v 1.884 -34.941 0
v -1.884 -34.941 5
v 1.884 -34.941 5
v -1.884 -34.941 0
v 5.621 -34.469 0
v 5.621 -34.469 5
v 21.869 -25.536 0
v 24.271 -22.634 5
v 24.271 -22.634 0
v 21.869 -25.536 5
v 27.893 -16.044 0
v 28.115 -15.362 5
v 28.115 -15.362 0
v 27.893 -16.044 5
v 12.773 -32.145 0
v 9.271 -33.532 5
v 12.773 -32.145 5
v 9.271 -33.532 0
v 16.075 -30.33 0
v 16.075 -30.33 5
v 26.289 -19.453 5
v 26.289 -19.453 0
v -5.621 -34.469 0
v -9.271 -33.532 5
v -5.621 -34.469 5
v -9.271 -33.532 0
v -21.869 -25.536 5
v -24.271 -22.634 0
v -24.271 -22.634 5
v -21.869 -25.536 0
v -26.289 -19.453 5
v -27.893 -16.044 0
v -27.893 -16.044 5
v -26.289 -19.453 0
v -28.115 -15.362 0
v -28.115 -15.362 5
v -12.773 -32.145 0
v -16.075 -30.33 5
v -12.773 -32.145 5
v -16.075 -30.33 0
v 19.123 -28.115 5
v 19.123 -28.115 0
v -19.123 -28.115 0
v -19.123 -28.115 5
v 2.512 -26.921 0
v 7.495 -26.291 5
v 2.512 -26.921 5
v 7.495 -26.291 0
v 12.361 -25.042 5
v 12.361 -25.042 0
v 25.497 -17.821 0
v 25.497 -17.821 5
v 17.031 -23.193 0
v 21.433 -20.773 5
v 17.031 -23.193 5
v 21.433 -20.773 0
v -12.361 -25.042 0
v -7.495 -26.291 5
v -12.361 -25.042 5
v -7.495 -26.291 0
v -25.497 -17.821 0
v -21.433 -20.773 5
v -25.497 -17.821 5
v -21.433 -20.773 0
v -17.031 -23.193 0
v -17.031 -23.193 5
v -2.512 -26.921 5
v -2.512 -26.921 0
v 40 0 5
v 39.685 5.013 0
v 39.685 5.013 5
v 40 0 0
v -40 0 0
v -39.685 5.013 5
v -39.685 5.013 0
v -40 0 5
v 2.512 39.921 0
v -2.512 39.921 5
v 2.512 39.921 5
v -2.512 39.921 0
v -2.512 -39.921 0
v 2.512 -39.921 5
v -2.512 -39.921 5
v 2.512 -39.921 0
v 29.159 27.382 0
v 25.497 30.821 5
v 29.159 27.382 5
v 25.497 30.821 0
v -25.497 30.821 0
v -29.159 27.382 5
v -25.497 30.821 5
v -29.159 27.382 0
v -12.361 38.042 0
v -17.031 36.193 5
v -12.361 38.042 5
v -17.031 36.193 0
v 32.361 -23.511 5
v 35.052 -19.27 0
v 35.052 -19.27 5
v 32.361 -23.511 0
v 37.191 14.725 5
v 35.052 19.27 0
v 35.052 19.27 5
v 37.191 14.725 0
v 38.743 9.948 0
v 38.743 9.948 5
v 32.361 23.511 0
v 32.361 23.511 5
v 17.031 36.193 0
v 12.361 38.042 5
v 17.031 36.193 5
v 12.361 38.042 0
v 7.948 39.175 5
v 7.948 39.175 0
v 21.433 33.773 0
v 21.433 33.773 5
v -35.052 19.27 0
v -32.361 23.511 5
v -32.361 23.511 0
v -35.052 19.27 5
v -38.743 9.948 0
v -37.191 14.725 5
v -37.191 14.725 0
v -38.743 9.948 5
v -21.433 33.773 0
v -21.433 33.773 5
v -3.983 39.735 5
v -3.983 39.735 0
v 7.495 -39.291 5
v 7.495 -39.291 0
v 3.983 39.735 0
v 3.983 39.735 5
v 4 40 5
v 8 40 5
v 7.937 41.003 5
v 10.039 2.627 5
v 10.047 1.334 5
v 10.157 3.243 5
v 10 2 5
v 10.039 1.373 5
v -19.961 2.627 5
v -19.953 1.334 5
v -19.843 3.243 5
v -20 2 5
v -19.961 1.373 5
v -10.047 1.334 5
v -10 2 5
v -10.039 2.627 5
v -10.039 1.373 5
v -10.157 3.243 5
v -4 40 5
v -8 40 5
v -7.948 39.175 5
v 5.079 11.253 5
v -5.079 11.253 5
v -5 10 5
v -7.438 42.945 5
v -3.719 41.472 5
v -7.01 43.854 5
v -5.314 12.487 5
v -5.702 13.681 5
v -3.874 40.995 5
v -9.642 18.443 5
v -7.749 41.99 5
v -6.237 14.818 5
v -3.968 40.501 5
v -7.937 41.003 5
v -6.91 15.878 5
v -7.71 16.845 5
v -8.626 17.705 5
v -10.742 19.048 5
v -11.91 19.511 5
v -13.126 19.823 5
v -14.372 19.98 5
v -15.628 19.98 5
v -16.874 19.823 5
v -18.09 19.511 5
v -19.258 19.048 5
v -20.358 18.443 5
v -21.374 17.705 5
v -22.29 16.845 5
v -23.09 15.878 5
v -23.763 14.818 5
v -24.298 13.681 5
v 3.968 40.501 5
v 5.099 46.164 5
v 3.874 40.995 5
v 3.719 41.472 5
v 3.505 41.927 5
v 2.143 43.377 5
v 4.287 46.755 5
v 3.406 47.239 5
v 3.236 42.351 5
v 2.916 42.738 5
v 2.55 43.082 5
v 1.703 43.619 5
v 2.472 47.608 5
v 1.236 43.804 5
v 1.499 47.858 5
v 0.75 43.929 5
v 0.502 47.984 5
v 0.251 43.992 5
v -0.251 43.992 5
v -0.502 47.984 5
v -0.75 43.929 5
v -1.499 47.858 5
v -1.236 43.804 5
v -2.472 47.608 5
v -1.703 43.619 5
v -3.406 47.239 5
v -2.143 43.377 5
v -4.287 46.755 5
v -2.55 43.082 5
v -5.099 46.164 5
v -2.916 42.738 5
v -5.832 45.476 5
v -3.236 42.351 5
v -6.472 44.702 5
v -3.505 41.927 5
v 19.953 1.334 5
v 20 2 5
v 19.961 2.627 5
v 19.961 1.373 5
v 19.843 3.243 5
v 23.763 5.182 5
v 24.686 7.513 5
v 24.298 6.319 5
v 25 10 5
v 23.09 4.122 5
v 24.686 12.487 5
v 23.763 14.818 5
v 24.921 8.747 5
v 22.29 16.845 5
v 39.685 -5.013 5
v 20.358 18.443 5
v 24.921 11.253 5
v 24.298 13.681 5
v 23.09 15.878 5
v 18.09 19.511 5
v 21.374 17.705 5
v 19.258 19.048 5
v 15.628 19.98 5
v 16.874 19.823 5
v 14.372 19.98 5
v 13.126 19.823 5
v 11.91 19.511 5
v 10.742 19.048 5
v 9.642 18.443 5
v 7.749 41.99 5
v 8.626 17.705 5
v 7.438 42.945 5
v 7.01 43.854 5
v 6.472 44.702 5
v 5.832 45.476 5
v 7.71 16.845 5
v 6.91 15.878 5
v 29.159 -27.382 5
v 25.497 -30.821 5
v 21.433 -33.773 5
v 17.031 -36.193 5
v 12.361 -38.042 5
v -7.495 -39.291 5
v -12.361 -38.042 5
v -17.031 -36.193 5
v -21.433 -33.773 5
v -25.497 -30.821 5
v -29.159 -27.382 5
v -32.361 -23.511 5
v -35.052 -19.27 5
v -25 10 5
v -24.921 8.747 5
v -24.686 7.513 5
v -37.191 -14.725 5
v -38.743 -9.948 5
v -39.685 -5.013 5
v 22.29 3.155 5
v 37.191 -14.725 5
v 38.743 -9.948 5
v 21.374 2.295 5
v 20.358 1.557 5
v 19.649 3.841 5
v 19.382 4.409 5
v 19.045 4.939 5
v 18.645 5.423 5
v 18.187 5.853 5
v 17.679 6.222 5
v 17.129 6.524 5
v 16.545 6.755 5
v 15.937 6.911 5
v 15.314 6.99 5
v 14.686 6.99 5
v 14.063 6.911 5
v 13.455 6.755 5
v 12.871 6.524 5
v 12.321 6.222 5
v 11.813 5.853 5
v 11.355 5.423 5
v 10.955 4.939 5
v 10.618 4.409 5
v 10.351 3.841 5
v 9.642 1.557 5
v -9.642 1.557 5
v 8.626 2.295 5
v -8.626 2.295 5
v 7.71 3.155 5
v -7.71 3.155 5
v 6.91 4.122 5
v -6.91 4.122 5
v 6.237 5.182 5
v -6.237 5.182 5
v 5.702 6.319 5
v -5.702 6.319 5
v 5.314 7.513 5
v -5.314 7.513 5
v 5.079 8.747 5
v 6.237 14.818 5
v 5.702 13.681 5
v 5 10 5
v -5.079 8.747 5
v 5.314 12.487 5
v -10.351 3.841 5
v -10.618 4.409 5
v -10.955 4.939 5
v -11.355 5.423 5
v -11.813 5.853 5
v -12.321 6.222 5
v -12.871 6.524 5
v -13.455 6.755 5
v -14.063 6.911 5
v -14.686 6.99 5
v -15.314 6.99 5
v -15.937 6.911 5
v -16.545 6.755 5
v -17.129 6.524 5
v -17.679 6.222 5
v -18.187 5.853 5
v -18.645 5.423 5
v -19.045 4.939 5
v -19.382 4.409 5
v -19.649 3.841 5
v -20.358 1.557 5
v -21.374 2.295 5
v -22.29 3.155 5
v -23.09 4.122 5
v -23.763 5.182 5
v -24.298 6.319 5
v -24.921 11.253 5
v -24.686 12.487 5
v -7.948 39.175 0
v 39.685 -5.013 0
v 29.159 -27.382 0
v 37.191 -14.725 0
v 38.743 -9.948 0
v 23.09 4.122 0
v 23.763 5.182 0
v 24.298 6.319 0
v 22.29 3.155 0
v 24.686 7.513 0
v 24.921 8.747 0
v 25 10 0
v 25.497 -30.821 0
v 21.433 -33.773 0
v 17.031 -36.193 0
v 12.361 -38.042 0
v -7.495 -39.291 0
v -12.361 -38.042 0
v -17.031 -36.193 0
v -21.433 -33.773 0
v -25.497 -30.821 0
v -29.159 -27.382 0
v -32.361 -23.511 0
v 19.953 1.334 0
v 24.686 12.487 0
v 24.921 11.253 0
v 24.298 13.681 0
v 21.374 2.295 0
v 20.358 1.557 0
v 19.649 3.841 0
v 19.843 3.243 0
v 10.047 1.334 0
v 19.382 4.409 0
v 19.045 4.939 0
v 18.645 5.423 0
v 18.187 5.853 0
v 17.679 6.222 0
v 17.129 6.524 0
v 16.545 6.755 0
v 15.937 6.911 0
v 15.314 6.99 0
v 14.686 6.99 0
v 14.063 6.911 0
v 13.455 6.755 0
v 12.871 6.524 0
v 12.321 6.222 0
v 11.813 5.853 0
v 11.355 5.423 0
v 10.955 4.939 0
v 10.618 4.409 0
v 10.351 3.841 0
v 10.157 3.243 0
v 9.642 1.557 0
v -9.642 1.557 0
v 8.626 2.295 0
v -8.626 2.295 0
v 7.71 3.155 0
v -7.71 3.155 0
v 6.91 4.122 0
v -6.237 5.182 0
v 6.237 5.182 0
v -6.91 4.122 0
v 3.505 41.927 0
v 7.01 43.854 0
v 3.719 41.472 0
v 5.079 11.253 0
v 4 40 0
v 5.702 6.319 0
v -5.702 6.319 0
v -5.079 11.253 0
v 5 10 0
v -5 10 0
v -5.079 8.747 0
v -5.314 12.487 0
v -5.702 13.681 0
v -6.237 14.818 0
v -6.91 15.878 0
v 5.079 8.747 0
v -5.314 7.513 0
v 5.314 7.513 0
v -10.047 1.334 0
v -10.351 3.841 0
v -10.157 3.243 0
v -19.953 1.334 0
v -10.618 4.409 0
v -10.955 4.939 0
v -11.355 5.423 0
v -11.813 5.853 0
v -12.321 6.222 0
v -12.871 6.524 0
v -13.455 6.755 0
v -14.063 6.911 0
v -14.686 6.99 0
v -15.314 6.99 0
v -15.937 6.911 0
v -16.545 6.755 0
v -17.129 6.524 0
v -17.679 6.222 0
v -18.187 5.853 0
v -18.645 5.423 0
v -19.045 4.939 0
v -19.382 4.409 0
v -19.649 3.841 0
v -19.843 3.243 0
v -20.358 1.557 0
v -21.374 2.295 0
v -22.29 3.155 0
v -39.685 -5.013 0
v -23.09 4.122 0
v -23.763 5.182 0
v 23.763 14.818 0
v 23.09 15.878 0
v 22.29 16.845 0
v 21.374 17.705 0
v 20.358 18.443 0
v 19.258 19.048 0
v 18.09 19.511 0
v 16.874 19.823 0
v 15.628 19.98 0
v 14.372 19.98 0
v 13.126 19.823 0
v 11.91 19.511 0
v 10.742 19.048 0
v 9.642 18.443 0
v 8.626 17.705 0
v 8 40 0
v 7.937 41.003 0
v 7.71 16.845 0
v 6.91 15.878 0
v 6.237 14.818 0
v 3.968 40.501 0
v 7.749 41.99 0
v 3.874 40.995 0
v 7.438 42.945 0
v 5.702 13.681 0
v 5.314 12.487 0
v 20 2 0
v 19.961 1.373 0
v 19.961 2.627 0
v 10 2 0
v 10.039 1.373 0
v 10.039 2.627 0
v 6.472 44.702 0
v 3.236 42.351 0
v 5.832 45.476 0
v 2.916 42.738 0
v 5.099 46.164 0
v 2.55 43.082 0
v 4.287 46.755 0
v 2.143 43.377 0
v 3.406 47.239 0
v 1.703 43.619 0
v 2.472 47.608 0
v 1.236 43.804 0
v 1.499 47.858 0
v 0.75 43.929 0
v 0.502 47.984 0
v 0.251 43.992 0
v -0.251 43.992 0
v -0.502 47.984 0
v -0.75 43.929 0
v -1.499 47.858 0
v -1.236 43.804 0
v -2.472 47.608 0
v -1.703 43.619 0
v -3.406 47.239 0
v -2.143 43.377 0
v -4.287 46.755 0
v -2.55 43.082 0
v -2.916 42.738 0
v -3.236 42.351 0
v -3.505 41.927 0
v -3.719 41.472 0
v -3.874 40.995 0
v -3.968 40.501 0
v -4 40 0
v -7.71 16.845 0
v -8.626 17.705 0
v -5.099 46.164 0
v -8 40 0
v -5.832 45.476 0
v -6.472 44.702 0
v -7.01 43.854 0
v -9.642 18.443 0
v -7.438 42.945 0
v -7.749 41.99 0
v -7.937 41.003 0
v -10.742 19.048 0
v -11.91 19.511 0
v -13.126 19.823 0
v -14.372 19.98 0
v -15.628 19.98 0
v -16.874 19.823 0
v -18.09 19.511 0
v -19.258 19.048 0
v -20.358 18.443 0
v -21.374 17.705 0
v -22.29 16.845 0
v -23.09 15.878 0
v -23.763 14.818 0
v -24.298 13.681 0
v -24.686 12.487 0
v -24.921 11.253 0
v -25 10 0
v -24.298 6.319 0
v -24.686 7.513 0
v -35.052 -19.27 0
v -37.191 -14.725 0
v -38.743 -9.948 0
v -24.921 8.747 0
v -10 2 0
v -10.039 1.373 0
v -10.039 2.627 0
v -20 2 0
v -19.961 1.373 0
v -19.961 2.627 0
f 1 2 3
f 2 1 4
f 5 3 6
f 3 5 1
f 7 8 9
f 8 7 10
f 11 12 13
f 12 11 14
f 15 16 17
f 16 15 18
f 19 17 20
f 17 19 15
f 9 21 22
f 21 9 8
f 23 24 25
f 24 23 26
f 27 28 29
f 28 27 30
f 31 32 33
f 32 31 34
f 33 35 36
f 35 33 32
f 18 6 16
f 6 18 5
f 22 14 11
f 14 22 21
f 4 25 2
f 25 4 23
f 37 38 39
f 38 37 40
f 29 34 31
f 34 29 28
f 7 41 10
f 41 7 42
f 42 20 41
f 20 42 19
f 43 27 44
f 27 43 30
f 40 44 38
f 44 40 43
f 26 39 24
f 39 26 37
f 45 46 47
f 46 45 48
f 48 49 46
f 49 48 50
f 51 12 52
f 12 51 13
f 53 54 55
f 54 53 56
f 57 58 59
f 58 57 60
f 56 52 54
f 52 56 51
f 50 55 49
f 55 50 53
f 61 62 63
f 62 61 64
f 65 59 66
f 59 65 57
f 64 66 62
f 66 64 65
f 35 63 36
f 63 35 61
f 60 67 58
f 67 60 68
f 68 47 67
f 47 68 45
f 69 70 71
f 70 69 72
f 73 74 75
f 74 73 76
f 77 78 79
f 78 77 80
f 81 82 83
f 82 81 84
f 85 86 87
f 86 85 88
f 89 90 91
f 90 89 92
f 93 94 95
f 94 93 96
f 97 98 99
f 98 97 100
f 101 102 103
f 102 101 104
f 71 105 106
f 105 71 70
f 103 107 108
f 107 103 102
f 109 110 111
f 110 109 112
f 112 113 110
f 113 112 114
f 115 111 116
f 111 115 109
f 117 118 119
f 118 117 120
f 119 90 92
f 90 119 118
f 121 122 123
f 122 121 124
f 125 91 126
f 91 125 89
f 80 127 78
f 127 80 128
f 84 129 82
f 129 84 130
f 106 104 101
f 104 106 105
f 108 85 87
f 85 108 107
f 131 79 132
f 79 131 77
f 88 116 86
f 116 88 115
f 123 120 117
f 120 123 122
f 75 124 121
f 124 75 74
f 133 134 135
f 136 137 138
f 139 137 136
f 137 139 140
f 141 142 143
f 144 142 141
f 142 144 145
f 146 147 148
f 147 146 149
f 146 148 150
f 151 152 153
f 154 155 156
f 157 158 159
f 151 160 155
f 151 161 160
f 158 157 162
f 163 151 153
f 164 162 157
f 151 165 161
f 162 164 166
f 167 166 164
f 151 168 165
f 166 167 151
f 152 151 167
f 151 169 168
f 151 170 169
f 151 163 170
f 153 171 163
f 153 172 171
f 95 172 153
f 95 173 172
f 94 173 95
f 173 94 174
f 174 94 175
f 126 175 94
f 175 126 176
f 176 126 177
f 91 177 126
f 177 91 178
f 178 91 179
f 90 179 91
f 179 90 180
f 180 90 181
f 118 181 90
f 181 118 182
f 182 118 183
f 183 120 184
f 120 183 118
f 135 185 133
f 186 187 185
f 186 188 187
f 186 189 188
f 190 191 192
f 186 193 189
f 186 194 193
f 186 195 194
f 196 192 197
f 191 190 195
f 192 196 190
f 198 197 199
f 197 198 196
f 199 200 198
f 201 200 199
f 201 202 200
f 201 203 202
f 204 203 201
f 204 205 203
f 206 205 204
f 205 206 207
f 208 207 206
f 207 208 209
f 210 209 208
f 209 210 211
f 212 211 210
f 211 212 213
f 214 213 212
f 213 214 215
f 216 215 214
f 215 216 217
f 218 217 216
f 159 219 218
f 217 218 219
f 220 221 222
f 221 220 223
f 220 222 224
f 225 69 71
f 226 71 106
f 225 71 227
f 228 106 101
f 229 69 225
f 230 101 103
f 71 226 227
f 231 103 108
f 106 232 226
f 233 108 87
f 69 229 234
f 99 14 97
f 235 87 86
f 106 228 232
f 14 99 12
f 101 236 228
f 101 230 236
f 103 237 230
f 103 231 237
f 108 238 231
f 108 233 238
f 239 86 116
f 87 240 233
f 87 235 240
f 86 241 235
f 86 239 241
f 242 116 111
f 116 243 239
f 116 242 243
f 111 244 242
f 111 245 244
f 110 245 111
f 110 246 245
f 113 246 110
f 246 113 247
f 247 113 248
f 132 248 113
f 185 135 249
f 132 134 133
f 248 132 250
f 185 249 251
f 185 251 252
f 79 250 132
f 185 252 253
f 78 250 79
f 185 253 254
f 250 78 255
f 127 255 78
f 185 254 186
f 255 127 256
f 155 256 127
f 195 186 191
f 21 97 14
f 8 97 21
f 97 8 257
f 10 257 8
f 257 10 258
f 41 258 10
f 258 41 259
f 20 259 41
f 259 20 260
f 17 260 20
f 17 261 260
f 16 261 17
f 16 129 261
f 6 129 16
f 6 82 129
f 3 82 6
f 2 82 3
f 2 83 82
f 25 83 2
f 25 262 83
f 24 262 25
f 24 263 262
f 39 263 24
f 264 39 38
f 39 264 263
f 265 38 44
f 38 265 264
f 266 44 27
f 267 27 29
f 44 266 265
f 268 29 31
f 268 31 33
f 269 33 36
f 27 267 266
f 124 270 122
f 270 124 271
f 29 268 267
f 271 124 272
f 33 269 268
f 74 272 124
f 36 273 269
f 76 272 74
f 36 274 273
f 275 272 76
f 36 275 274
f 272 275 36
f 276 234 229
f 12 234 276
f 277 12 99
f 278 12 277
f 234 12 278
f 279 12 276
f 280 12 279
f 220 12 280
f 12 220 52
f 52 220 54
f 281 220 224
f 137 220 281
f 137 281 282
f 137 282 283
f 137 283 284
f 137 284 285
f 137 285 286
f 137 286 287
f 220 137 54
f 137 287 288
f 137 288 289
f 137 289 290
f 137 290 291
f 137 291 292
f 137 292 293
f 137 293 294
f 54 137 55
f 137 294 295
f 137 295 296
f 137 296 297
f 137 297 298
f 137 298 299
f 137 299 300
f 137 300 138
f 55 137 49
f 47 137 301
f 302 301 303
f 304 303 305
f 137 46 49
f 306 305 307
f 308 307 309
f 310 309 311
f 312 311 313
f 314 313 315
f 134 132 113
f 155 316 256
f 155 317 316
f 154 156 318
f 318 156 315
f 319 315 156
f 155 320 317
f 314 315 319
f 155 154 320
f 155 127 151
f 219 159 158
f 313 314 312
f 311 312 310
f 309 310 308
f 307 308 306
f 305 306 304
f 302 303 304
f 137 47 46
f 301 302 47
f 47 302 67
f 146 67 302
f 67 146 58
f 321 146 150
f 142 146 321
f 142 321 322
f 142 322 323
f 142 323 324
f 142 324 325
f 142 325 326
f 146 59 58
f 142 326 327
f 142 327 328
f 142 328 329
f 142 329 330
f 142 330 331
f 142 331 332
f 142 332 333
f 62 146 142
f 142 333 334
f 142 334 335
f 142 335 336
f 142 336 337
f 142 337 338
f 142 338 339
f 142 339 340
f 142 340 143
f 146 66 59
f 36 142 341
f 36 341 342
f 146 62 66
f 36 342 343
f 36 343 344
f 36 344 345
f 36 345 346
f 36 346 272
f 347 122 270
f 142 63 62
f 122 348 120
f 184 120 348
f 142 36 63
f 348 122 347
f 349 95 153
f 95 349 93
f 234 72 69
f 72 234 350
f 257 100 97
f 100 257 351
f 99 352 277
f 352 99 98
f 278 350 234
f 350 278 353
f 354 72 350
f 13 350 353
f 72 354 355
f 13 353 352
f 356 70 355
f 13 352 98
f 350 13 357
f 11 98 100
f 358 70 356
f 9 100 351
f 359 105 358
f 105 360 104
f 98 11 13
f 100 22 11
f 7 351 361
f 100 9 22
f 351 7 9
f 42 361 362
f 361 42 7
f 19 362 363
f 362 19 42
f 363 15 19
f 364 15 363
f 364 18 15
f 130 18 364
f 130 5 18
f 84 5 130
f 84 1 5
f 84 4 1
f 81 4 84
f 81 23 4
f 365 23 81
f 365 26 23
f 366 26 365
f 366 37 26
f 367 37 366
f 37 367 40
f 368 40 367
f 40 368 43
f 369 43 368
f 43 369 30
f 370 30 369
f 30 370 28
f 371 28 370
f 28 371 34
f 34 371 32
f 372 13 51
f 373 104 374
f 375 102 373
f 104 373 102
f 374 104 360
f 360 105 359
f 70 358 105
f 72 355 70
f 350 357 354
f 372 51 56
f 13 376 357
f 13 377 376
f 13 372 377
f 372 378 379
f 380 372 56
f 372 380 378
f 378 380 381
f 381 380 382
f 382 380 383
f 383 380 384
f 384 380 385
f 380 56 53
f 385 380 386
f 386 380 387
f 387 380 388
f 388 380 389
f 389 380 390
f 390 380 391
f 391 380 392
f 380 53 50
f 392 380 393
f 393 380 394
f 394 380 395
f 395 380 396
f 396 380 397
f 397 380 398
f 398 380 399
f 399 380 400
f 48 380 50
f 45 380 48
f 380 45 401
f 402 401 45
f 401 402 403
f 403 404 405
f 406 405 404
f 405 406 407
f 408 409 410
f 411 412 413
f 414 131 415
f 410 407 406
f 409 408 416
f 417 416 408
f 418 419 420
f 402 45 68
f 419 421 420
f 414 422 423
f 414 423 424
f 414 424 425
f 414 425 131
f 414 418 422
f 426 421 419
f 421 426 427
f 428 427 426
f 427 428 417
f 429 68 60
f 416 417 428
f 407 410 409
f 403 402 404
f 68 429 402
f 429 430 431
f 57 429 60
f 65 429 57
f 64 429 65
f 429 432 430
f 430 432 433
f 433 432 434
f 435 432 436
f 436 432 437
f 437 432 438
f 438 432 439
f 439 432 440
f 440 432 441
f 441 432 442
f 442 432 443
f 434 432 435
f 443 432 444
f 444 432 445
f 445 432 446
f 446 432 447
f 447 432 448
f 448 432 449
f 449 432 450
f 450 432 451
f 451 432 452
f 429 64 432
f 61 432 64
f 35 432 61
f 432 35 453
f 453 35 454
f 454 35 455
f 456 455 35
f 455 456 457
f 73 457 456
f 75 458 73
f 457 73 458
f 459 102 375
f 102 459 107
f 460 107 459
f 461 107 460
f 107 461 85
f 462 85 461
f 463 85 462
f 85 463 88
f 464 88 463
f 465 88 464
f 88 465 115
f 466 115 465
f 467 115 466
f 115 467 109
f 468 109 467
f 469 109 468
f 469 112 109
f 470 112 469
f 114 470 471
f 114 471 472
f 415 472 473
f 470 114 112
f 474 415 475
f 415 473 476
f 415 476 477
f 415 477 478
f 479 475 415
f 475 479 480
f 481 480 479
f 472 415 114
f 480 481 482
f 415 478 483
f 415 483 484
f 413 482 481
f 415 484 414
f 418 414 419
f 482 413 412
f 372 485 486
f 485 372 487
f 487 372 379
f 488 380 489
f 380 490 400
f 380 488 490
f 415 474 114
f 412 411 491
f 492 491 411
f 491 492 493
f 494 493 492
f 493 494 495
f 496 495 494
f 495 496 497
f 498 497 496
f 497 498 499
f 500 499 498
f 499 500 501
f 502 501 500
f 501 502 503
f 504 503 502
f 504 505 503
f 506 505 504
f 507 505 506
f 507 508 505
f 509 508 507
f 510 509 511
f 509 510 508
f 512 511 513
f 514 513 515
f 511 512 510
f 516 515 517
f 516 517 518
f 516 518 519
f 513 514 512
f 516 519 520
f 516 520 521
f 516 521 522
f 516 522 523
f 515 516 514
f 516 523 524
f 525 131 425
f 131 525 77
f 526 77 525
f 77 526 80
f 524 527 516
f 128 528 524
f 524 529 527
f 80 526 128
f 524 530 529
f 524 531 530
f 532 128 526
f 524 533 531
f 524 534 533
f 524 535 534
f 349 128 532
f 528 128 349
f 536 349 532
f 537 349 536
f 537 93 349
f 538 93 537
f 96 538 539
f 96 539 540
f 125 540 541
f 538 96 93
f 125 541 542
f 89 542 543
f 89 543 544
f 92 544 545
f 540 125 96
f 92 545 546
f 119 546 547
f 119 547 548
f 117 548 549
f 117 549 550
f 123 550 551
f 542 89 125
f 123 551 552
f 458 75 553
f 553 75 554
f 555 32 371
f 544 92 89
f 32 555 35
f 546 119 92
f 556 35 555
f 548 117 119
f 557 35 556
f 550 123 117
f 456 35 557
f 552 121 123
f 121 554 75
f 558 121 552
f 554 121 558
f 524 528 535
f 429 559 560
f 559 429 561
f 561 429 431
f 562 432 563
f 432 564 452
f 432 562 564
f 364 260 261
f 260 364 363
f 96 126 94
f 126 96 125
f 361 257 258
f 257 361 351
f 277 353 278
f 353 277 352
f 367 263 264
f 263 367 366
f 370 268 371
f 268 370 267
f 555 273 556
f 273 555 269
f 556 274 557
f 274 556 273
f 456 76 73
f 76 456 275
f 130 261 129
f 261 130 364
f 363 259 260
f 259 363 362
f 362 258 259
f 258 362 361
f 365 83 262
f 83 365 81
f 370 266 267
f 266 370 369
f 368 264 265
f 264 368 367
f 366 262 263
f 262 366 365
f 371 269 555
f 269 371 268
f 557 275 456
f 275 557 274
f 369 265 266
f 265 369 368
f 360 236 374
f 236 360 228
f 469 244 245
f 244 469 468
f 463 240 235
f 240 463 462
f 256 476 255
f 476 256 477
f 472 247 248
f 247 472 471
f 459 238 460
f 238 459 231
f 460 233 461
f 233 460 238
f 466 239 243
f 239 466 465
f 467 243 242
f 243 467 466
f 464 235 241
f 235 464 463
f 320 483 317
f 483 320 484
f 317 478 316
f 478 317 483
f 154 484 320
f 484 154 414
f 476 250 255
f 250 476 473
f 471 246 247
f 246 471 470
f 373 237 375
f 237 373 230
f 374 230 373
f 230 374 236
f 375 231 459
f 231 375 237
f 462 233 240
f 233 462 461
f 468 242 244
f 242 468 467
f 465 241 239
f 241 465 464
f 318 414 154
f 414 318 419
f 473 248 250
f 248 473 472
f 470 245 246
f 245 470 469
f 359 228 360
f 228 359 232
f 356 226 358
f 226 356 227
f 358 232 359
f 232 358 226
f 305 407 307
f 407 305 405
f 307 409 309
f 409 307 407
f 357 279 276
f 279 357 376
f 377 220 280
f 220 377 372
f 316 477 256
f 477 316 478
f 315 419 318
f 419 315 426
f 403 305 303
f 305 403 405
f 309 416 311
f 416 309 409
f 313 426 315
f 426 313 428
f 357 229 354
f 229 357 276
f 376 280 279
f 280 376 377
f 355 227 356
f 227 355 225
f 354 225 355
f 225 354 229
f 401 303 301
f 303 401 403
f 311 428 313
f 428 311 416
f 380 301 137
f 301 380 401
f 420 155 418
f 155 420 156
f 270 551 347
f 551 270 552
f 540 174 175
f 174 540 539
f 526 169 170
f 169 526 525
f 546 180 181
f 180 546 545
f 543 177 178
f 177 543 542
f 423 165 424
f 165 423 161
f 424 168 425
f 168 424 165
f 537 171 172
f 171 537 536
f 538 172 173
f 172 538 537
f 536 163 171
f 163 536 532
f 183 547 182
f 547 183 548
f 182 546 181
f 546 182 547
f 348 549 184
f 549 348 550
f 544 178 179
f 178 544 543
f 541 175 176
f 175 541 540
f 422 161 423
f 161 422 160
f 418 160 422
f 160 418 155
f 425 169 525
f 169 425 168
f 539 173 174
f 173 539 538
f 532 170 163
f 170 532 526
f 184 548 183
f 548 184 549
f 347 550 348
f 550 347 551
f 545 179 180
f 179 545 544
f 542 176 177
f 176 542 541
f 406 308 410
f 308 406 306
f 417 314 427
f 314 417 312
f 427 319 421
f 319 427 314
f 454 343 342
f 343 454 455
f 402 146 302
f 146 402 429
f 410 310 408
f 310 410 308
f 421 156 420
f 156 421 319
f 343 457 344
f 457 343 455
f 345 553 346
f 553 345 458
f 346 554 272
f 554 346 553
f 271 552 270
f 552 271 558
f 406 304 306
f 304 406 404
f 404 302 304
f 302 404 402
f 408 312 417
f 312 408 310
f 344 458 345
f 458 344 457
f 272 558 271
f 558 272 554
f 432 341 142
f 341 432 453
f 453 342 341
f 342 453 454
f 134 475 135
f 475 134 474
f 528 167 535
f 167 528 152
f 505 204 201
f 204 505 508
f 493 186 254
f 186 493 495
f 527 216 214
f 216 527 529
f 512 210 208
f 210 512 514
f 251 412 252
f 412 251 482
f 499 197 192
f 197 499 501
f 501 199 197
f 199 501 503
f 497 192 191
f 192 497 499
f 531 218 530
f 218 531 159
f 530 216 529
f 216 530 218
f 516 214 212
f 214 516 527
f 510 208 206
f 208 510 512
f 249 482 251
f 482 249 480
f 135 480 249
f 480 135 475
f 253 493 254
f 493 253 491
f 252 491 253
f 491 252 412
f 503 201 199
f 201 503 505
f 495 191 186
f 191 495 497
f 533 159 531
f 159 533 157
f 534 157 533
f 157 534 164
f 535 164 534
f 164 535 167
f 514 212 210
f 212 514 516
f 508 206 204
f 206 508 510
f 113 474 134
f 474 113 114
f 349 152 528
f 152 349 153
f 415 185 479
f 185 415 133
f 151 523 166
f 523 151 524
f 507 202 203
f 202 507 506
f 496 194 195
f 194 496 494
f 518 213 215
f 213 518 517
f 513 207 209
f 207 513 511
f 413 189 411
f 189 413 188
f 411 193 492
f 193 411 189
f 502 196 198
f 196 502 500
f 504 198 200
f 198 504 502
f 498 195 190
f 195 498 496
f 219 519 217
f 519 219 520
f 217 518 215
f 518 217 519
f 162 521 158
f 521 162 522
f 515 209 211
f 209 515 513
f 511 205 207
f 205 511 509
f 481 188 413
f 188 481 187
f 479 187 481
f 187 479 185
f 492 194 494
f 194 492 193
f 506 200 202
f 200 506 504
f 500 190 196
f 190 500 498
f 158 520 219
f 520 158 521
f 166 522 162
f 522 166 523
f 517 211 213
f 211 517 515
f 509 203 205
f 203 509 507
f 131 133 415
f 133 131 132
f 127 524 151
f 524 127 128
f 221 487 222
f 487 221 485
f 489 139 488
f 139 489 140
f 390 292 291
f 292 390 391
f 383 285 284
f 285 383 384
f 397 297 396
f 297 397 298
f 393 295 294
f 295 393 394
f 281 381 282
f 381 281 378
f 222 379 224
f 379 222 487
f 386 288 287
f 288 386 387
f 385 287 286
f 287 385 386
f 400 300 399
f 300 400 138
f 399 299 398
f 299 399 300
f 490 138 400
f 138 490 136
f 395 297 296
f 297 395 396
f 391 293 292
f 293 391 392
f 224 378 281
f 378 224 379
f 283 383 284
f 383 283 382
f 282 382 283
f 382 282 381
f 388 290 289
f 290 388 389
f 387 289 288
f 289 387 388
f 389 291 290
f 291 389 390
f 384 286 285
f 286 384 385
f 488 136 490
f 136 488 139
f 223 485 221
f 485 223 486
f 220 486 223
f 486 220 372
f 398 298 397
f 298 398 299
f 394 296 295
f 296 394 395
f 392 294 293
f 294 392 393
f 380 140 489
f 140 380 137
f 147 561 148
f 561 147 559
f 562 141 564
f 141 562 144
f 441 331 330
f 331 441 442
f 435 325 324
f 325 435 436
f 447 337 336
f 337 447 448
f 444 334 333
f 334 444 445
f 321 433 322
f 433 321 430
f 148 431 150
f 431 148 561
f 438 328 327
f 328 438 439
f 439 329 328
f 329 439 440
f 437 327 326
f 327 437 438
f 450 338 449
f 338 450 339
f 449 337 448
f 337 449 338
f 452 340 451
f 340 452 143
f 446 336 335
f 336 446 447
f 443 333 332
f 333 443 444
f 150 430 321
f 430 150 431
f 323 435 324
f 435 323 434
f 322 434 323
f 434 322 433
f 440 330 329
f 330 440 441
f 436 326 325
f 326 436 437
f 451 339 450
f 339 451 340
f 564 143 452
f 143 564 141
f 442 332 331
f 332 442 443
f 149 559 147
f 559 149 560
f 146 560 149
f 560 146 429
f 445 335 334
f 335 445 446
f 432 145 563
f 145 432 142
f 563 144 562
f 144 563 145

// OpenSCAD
$fn=50;
difference() {
  cylinder(h=5, r1=40, r2=40);

  translate([15, 10, -1]) {
    cylinder(h=7, r1=10, r2=10);
  }
  translate([-15, 10, -1]) {
    cylinder(h=7, r1=10, r2=10);
  }

  difference() {
    translate([0, -5, -1]) {
      cylinder(h=7, r1=30, r2=30);
    }
    translate([0, 13, -2]) {
      cylinder(h=9, r1=40, r2=40);
    }
  }
}

translate([15, 2, 0]) {
  cylinder(h=5, r1=5, r2=5);
}
translate([-15, 2, 0]) {
  cylinder(h=5, r1=5, r2=5);
}

translate([0, 40, 0]) {
  difference() {
    cylinder(h=5, r1=8, r2=8);
    translate([0, 0, -1]) {
      cylinder(h=7, r1=4, r2=4);
    }
  }
}
